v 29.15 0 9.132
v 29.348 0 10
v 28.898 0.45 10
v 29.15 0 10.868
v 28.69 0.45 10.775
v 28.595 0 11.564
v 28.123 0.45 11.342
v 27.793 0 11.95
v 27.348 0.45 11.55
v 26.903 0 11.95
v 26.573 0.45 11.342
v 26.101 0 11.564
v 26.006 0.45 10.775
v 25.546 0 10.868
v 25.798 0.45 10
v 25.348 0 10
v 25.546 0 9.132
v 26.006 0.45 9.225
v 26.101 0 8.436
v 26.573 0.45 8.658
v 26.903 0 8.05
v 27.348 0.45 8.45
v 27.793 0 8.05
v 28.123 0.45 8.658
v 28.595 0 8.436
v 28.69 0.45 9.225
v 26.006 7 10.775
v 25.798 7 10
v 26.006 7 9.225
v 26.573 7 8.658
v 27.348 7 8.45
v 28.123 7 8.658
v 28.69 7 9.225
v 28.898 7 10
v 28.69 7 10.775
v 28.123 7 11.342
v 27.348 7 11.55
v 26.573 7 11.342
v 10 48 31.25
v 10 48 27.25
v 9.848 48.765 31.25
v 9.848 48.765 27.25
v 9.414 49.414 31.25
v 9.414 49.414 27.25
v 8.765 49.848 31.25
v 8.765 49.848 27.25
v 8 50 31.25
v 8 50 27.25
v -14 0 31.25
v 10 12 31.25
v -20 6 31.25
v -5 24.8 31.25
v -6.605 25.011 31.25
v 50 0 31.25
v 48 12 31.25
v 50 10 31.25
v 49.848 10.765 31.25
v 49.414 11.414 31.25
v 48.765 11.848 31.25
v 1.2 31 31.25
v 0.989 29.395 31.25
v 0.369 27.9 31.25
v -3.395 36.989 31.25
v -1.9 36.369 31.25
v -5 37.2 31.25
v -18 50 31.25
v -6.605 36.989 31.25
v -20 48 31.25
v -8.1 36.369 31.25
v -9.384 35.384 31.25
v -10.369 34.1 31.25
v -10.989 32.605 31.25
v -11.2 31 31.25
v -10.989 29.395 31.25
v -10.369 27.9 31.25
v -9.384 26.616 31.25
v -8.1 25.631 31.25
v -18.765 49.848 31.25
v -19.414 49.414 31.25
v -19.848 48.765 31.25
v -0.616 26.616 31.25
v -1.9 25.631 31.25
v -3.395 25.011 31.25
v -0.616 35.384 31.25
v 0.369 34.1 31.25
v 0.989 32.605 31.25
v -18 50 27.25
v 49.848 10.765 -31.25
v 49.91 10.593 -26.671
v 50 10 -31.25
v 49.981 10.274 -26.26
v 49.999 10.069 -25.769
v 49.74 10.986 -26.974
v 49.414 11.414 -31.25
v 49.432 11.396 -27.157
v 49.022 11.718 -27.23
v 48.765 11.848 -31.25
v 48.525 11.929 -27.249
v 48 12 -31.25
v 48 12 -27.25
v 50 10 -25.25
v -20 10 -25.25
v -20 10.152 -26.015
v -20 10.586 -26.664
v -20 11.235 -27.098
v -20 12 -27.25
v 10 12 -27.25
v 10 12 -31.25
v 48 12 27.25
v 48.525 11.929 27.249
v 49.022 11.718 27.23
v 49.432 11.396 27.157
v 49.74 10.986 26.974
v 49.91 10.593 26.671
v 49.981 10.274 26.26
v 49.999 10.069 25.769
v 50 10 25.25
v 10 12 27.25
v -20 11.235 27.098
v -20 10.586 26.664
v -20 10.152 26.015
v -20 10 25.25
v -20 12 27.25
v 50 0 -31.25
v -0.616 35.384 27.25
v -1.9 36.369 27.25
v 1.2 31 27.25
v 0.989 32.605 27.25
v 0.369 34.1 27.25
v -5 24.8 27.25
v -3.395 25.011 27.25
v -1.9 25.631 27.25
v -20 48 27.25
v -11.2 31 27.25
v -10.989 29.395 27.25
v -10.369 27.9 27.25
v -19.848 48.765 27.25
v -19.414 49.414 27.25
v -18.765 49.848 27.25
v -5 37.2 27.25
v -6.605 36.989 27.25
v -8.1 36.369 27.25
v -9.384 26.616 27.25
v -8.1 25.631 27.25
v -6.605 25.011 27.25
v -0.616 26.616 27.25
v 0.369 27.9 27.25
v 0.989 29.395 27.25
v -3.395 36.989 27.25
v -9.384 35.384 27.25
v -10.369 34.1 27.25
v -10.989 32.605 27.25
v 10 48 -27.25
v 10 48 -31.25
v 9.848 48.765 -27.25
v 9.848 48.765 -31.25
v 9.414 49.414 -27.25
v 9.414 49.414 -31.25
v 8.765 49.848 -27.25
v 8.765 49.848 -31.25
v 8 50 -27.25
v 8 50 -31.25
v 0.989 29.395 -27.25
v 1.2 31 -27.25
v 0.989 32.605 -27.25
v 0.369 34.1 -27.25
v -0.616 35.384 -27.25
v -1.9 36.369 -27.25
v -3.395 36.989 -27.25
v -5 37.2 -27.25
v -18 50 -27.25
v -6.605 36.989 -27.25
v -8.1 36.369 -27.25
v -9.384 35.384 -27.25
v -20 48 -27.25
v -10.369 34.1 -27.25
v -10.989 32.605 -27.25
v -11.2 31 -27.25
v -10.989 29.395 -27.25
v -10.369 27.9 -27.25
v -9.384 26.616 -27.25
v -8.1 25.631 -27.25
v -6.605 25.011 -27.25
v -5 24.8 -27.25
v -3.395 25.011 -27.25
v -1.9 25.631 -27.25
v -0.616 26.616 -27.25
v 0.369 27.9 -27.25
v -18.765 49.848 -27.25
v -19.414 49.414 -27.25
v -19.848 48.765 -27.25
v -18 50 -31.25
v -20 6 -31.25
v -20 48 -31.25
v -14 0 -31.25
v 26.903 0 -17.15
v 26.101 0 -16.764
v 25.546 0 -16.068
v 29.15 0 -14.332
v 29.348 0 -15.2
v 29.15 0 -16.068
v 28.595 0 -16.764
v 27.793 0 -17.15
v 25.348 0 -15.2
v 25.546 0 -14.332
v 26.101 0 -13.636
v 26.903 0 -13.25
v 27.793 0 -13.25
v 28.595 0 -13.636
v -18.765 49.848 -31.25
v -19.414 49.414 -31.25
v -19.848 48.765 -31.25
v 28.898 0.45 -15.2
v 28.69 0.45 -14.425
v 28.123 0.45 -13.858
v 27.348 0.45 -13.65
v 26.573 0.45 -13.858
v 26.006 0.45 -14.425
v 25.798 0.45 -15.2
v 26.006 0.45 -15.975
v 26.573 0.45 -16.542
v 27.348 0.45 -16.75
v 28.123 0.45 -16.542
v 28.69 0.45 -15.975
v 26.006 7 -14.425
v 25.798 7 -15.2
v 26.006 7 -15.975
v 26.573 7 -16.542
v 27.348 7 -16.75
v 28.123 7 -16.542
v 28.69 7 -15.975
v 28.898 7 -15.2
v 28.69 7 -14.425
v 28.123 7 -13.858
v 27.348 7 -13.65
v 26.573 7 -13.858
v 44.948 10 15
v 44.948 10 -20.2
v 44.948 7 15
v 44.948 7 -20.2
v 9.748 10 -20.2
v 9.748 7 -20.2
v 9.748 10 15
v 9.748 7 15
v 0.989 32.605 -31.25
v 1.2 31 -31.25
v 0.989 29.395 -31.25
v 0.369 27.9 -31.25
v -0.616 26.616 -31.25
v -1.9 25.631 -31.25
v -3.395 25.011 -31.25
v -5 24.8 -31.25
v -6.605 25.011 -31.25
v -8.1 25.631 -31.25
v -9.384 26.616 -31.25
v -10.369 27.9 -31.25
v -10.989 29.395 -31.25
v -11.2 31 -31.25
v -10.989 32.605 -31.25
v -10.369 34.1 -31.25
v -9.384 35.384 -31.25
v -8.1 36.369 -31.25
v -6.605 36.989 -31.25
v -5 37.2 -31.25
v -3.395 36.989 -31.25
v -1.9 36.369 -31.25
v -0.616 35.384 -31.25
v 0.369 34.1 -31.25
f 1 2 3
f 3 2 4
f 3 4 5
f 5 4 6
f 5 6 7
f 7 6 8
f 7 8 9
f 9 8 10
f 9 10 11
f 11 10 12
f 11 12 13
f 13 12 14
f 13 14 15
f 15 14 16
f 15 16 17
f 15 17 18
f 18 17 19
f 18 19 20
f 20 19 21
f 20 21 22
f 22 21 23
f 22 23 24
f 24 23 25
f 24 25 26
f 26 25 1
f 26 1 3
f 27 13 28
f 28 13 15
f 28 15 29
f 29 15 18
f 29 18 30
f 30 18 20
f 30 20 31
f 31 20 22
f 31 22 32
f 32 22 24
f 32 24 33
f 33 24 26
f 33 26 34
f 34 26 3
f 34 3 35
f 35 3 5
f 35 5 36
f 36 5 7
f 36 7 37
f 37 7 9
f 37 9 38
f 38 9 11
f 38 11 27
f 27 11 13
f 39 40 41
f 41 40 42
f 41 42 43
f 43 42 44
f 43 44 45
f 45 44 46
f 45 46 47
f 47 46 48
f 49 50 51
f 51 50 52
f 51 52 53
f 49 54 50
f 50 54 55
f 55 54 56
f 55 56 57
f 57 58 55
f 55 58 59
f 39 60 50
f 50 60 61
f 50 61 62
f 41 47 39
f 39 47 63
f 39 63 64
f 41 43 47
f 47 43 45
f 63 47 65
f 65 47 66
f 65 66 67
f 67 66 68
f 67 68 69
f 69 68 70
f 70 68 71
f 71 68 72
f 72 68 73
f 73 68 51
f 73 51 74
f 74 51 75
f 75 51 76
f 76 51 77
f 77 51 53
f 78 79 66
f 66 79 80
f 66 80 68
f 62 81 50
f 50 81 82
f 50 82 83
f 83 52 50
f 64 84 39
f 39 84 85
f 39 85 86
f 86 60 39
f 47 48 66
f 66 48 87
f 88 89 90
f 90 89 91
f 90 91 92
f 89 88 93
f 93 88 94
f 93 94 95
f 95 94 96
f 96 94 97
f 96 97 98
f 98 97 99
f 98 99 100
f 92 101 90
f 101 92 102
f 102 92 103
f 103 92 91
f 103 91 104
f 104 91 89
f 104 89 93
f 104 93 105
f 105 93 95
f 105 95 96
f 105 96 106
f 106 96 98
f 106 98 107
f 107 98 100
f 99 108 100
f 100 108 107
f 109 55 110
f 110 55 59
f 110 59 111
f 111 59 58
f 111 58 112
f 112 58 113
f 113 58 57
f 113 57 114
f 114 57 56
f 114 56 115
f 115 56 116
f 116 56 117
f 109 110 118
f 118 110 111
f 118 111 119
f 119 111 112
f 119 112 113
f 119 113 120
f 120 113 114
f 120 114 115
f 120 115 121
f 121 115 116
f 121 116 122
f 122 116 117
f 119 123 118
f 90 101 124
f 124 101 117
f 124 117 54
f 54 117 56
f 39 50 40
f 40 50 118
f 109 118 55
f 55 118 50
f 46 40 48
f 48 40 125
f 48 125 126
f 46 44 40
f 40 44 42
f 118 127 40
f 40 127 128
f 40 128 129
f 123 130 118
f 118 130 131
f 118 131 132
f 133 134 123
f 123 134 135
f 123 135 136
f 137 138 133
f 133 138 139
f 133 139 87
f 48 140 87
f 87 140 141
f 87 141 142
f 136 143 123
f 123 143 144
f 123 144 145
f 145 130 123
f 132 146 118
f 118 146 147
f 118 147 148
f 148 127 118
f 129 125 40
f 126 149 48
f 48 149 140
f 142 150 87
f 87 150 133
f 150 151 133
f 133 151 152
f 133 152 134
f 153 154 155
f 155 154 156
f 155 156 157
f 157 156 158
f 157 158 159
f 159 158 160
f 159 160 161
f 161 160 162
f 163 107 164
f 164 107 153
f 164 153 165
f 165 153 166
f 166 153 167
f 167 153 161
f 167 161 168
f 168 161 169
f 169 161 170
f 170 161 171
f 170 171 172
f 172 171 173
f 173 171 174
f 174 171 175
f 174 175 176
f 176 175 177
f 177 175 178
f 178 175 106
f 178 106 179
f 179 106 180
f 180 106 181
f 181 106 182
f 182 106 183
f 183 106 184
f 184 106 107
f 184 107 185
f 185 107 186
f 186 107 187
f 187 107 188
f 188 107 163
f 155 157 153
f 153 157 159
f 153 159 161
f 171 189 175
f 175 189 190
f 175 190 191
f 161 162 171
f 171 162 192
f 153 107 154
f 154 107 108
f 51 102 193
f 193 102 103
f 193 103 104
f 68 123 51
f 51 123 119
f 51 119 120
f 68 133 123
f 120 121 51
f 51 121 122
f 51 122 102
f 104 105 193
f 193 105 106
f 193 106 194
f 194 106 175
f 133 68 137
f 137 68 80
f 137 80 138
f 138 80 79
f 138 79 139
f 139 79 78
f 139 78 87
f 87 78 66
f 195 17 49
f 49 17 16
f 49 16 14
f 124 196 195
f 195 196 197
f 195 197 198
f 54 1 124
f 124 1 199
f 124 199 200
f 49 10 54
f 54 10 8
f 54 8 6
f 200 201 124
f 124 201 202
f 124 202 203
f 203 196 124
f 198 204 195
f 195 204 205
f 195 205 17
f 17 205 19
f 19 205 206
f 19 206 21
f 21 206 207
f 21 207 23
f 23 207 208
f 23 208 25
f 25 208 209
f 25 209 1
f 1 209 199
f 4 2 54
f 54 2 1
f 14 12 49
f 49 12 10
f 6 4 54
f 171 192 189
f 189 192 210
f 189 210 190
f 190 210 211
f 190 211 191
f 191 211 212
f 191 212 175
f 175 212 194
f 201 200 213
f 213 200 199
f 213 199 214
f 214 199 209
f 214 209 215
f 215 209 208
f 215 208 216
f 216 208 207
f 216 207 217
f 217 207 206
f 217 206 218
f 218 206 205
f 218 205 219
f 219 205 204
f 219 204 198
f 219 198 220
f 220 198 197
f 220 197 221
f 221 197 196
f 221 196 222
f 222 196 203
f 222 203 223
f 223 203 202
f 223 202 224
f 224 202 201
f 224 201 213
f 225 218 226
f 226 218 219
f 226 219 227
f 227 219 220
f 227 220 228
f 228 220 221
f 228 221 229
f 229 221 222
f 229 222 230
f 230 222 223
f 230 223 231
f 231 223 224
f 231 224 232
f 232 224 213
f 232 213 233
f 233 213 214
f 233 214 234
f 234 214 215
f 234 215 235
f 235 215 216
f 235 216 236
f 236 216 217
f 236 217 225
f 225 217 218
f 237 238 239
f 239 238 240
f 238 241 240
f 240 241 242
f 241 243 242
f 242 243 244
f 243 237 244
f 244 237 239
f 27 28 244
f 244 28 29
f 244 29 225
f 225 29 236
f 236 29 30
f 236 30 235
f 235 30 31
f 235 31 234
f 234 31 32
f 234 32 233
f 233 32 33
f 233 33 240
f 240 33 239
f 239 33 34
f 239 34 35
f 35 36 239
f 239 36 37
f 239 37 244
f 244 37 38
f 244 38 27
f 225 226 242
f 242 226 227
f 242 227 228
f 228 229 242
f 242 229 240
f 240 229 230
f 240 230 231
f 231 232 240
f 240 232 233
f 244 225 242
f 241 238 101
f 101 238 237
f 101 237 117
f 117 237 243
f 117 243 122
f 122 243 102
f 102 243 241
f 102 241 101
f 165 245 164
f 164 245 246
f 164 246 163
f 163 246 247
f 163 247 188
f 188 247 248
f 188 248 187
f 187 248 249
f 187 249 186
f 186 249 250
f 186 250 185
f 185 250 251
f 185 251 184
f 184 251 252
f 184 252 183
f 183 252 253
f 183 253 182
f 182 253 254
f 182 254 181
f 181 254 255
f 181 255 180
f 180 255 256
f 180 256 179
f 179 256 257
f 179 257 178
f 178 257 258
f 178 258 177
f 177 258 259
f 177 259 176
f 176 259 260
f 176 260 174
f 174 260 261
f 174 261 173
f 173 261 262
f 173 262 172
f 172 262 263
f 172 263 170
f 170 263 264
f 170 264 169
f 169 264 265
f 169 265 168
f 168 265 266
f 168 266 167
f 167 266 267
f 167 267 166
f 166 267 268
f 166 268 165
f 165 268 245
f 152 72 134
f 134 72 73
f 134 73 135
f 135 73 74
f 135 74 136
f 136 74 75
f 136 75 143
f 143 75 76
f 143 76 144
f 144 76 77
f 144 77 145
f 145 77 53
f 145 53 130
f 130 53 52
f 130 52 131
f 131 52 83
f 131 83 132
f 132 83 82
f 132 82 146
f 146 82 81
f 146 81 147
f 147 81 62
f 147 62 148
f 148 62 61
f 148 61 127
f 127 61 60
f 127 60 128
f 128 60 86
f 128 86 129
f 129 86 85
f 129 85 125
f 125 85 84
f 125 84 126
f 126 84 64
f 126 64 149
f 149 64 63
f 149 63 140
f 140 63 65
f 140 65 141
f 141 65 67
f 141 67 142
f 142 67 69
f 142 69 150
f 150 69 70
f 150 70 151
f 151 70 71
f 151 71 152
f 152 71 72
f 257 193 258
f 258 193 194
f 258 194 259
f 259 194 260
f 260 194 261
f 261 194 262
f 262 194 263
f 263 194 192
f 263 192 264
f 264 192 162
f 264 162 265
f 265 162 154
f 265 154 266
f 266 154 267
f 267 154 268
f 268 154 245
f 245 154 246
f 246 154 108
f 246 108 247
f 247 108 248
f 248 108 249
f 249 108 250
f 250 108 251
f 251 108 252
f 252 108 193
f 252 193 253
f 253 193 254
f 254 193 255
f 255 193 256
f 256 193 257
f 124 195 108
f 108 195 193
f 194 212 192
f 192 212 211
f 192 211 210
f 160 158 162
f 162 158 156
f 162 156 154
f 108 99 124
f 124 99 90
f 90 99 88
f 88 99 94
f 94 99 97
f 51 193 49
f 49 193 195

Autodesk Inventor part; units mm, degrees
ref_plane "YZ Plane" through (0, 0, 0) normal (1, 0, 0) x (0, 1, 0)
sketch "Sketch1" plane through (0, 0, 0) normal (0, 1, 0) x (-1, 0, 0)
  line L0 (20, 31.25) -> (-20, 31.25)
  line L1 (-20, 31.25) -> (-20, -31.25)
  line L2 (-20, -31.25) -> (20, -31.25)
  line L3 (20, -31.25) -> (20, 31.25)
  line L4 (20, 31.25) -> (-20, -31.25) construction
  line L5 (-20, 31.25) -> (20, -31.25) construction
  point P0 (0, 0)
  dimension "d0" = 40
  dimension "d1" = 62.5
extrude "Extrusion1" add sketch "Sketch1" along normal blind 50
sketch "Sketch2" plane through (0, 50, 0) normal (0, 1, 0) x (1, 0, 0)
  line L0 (20, -31.25) -> (20, 31.25) projected
  line L1 (-20, -27.25) -> (20, -27.25)
  line L2 (20, -27.25) -> (20, 27.25)
  line L3 (20, 27.25) -> (-20, 27.25)
  line L4 (-20, 27.25) -> (-20, -27.25)
  line L5 (-20, -27.25) -> (20, 27.25) construction
  line L6 (20, -27.25) -> (-20, 27.25) construction
  line L7 (-20, -31.25) -> (20, -31.25) projected
  point P0 (0, 0)
  dimension "d4" = 4
extrude "Extrusion2" cut sketch "Sketch2" against normal blind 40
sketch "Sketch3" plane through (-20, 0, 31.25) normal (0, 0, 1) x (1, 0, 0)
  circle A0 centre (15, 31) radius 6.2
  line L0 (40, 10) -> (0, 10) projected
  line L1 (40, 10) -> (40, 50) projected
  line L2 (0, 0) -> (0, 50) projected
  point P0 (20, 0)
  point P1 (40, 30)
  dimension "d7" = 12.4
  dimension "d15" = 21
  dimension "d38" = 15
extrude "Extrusion3" cut sketch "Sketch3" against normal blind 8
sketch "Sketch4" plane through (20, 0, -31.25) normal (0, 0, -1) x (-1, 0, 0)
  circle A0 centre (25, 31) radius 6.2 projected
  point P0 (20, 0)
extrude "Extrusion4" cut sketch "Sketch4" against normal blind 8
fillet "Fillet1" radius 2 2 edges at (0, 10, 27.25) (0, 10, -27.25)
sketch "Sketch5" plane through (20, 0, 31.25) normal (1, 0, 0) x (0, 0, -1)
  line L0 (4, 12) -> (4, 50) projected
  line L1 (0, 50) -> (4, 50) projected
  line L2 (0, 0) -> (0, 50) projected
  arc A0 (4, 12) -> (6, 10) centre (6, 12) ccw projected
  line L3 (0, 0) -> (62.5, 0) projected
  line L4 (56.5, 10) -> (6, 10) projected
  arc A1 (56.5, 10) -> (58.5, 12) centre (56.5, 12) ccw projected
  line L5 (58.5, 50) -> (58.5, 12) projected
  line L6 (62.5, 0) -> (62.5, 50) projected
  line L7 (58.5, 50) -> (62.5, 50) projected
  point P0 (31.25, 0)
extrude "Extrusion5" add sketch "Sketch5" along normal blind 30
sketch "Sketch6" plane through (0, 10, 0) normal (0, 1, 0) x (1, 0, 0)
  line L0 (9.748, 20.2) -> (44.948, 20.2)
  line L1 (44.948, 20.2) -> (44.948, -15)
  line L2 (44.948, -15) -> (9.748, -15)
  line L3 (9.748, -15) -> (9.748, 20.2)
  line L4 (9.748, 20.2) -> (44.948, -15) construction
  line L5 (44.948, 20.2) -> (9.748, -15) construction
  line L6 (-20, -25.25) -> (-20, 25.25) projected
  point P0 (0, 0)
  point P1 (27.348, 2.6)
  point P2 (-20, 0)
  point P3 (44.948, 2.6)
  dimension "d16" = 35.2
  dimension "d17" = 35.2
  dimension "d18" = 65
  dimension "d84" = 2.6
extrude "Extrusion6" cut sketch "Sketch6" against normal blind 3
sketch "Sketch10" plane through (0, 0, 0) normal (0, -1, 0) x (1, 0, 0)
  line L0 (44.948, 15) -> (9.748, 15) projected
  line L1 (44.948, -20.2) -> (44.948, 15) projected
  line L2 (9.748, -20.2) -> (44.948, -20.2) projected
  line L3 (9.748, 15) -> (9.748, -20.2) projected
  point P0 (0, 0)
  point P1 (27.348, -15.2)
  point P2 (27.348, -20.2)
  dimension "d37" = 5
hole "Hole1" at (27.348, 0, -15.2) direction (0, 1, 0) diameter 3.1 end through all countersink diameter 4 countersink angle 90
ref_plane "Work Plane1" through (20, 0, -31.25) normal (-1, 0, 0) x (0, 0, 1)
fillet "Fillet4" radius 2 4 edges at (-20, 50, -29.25) (50, 50, -29.25) (50, 50, 29.25) (-20, 50, 29.25)
sketch "Sketch16" plane through (50, 0, -31.25) normal (0, 0, -1) x (-1, 0, 0)
  line L0 (68, 50) -> (2, 50) projected
  arc A0 (2, 50) -> (0, 48) centre (2, 48) ccw projected
  line L1 (0, 0) -> (0, 48) projected
  line L2 (0, 12) -> (70, 12) projected
  line L3 (40, 50) -> (40, 12)
  point P0 (50, 0)
  dimension "d93" = 40
extrude "Extrusion14" cut sketch "Sketch16" against normal blind 4
fillet "Fillet5" radius 2 1 edges at (10, 50, -29.25)
sketch "Sketch17" plane through (-20, 0, 31.25) normal (0, 0, 1) x (1, 0, 0)
  line L0 (2, 50) -> (68, 50) projected
  line L1 (70, 48) -> (70, 0) projected
  arc A0 (70, 48) -> (68, 50) centre (68, 48) ccw projected
  line L2 (0, 12) -> (70, 12) projected
  line L3 (30, 50) -> (30, 12)
  point P0 (20, 0)
  dimension "d88" = 40
extrude "Extrusion15" cut sketch "Sketch17" against normal blind 4
fillet "Fillet6" radius 2 2 edges at (50, 12, 29.25) (50, 12, -29.25)
fillet "Fillet7" radius 2 1 edges at (10, 50, 29.25)
ref_plane "Work Plane2" through (44.948, 10, -2.6) normal (0, 0, -1) x (-1, 0, 0)
mirror "Mirror5" about plane through (44.948, 10, -2.6) normal (0, 0, -1) of "Hole1"
chamfer "Chamfer1" distance 6 angle 45 1 edges at (-20, 0, 0)
properties part number "base_engrane"
